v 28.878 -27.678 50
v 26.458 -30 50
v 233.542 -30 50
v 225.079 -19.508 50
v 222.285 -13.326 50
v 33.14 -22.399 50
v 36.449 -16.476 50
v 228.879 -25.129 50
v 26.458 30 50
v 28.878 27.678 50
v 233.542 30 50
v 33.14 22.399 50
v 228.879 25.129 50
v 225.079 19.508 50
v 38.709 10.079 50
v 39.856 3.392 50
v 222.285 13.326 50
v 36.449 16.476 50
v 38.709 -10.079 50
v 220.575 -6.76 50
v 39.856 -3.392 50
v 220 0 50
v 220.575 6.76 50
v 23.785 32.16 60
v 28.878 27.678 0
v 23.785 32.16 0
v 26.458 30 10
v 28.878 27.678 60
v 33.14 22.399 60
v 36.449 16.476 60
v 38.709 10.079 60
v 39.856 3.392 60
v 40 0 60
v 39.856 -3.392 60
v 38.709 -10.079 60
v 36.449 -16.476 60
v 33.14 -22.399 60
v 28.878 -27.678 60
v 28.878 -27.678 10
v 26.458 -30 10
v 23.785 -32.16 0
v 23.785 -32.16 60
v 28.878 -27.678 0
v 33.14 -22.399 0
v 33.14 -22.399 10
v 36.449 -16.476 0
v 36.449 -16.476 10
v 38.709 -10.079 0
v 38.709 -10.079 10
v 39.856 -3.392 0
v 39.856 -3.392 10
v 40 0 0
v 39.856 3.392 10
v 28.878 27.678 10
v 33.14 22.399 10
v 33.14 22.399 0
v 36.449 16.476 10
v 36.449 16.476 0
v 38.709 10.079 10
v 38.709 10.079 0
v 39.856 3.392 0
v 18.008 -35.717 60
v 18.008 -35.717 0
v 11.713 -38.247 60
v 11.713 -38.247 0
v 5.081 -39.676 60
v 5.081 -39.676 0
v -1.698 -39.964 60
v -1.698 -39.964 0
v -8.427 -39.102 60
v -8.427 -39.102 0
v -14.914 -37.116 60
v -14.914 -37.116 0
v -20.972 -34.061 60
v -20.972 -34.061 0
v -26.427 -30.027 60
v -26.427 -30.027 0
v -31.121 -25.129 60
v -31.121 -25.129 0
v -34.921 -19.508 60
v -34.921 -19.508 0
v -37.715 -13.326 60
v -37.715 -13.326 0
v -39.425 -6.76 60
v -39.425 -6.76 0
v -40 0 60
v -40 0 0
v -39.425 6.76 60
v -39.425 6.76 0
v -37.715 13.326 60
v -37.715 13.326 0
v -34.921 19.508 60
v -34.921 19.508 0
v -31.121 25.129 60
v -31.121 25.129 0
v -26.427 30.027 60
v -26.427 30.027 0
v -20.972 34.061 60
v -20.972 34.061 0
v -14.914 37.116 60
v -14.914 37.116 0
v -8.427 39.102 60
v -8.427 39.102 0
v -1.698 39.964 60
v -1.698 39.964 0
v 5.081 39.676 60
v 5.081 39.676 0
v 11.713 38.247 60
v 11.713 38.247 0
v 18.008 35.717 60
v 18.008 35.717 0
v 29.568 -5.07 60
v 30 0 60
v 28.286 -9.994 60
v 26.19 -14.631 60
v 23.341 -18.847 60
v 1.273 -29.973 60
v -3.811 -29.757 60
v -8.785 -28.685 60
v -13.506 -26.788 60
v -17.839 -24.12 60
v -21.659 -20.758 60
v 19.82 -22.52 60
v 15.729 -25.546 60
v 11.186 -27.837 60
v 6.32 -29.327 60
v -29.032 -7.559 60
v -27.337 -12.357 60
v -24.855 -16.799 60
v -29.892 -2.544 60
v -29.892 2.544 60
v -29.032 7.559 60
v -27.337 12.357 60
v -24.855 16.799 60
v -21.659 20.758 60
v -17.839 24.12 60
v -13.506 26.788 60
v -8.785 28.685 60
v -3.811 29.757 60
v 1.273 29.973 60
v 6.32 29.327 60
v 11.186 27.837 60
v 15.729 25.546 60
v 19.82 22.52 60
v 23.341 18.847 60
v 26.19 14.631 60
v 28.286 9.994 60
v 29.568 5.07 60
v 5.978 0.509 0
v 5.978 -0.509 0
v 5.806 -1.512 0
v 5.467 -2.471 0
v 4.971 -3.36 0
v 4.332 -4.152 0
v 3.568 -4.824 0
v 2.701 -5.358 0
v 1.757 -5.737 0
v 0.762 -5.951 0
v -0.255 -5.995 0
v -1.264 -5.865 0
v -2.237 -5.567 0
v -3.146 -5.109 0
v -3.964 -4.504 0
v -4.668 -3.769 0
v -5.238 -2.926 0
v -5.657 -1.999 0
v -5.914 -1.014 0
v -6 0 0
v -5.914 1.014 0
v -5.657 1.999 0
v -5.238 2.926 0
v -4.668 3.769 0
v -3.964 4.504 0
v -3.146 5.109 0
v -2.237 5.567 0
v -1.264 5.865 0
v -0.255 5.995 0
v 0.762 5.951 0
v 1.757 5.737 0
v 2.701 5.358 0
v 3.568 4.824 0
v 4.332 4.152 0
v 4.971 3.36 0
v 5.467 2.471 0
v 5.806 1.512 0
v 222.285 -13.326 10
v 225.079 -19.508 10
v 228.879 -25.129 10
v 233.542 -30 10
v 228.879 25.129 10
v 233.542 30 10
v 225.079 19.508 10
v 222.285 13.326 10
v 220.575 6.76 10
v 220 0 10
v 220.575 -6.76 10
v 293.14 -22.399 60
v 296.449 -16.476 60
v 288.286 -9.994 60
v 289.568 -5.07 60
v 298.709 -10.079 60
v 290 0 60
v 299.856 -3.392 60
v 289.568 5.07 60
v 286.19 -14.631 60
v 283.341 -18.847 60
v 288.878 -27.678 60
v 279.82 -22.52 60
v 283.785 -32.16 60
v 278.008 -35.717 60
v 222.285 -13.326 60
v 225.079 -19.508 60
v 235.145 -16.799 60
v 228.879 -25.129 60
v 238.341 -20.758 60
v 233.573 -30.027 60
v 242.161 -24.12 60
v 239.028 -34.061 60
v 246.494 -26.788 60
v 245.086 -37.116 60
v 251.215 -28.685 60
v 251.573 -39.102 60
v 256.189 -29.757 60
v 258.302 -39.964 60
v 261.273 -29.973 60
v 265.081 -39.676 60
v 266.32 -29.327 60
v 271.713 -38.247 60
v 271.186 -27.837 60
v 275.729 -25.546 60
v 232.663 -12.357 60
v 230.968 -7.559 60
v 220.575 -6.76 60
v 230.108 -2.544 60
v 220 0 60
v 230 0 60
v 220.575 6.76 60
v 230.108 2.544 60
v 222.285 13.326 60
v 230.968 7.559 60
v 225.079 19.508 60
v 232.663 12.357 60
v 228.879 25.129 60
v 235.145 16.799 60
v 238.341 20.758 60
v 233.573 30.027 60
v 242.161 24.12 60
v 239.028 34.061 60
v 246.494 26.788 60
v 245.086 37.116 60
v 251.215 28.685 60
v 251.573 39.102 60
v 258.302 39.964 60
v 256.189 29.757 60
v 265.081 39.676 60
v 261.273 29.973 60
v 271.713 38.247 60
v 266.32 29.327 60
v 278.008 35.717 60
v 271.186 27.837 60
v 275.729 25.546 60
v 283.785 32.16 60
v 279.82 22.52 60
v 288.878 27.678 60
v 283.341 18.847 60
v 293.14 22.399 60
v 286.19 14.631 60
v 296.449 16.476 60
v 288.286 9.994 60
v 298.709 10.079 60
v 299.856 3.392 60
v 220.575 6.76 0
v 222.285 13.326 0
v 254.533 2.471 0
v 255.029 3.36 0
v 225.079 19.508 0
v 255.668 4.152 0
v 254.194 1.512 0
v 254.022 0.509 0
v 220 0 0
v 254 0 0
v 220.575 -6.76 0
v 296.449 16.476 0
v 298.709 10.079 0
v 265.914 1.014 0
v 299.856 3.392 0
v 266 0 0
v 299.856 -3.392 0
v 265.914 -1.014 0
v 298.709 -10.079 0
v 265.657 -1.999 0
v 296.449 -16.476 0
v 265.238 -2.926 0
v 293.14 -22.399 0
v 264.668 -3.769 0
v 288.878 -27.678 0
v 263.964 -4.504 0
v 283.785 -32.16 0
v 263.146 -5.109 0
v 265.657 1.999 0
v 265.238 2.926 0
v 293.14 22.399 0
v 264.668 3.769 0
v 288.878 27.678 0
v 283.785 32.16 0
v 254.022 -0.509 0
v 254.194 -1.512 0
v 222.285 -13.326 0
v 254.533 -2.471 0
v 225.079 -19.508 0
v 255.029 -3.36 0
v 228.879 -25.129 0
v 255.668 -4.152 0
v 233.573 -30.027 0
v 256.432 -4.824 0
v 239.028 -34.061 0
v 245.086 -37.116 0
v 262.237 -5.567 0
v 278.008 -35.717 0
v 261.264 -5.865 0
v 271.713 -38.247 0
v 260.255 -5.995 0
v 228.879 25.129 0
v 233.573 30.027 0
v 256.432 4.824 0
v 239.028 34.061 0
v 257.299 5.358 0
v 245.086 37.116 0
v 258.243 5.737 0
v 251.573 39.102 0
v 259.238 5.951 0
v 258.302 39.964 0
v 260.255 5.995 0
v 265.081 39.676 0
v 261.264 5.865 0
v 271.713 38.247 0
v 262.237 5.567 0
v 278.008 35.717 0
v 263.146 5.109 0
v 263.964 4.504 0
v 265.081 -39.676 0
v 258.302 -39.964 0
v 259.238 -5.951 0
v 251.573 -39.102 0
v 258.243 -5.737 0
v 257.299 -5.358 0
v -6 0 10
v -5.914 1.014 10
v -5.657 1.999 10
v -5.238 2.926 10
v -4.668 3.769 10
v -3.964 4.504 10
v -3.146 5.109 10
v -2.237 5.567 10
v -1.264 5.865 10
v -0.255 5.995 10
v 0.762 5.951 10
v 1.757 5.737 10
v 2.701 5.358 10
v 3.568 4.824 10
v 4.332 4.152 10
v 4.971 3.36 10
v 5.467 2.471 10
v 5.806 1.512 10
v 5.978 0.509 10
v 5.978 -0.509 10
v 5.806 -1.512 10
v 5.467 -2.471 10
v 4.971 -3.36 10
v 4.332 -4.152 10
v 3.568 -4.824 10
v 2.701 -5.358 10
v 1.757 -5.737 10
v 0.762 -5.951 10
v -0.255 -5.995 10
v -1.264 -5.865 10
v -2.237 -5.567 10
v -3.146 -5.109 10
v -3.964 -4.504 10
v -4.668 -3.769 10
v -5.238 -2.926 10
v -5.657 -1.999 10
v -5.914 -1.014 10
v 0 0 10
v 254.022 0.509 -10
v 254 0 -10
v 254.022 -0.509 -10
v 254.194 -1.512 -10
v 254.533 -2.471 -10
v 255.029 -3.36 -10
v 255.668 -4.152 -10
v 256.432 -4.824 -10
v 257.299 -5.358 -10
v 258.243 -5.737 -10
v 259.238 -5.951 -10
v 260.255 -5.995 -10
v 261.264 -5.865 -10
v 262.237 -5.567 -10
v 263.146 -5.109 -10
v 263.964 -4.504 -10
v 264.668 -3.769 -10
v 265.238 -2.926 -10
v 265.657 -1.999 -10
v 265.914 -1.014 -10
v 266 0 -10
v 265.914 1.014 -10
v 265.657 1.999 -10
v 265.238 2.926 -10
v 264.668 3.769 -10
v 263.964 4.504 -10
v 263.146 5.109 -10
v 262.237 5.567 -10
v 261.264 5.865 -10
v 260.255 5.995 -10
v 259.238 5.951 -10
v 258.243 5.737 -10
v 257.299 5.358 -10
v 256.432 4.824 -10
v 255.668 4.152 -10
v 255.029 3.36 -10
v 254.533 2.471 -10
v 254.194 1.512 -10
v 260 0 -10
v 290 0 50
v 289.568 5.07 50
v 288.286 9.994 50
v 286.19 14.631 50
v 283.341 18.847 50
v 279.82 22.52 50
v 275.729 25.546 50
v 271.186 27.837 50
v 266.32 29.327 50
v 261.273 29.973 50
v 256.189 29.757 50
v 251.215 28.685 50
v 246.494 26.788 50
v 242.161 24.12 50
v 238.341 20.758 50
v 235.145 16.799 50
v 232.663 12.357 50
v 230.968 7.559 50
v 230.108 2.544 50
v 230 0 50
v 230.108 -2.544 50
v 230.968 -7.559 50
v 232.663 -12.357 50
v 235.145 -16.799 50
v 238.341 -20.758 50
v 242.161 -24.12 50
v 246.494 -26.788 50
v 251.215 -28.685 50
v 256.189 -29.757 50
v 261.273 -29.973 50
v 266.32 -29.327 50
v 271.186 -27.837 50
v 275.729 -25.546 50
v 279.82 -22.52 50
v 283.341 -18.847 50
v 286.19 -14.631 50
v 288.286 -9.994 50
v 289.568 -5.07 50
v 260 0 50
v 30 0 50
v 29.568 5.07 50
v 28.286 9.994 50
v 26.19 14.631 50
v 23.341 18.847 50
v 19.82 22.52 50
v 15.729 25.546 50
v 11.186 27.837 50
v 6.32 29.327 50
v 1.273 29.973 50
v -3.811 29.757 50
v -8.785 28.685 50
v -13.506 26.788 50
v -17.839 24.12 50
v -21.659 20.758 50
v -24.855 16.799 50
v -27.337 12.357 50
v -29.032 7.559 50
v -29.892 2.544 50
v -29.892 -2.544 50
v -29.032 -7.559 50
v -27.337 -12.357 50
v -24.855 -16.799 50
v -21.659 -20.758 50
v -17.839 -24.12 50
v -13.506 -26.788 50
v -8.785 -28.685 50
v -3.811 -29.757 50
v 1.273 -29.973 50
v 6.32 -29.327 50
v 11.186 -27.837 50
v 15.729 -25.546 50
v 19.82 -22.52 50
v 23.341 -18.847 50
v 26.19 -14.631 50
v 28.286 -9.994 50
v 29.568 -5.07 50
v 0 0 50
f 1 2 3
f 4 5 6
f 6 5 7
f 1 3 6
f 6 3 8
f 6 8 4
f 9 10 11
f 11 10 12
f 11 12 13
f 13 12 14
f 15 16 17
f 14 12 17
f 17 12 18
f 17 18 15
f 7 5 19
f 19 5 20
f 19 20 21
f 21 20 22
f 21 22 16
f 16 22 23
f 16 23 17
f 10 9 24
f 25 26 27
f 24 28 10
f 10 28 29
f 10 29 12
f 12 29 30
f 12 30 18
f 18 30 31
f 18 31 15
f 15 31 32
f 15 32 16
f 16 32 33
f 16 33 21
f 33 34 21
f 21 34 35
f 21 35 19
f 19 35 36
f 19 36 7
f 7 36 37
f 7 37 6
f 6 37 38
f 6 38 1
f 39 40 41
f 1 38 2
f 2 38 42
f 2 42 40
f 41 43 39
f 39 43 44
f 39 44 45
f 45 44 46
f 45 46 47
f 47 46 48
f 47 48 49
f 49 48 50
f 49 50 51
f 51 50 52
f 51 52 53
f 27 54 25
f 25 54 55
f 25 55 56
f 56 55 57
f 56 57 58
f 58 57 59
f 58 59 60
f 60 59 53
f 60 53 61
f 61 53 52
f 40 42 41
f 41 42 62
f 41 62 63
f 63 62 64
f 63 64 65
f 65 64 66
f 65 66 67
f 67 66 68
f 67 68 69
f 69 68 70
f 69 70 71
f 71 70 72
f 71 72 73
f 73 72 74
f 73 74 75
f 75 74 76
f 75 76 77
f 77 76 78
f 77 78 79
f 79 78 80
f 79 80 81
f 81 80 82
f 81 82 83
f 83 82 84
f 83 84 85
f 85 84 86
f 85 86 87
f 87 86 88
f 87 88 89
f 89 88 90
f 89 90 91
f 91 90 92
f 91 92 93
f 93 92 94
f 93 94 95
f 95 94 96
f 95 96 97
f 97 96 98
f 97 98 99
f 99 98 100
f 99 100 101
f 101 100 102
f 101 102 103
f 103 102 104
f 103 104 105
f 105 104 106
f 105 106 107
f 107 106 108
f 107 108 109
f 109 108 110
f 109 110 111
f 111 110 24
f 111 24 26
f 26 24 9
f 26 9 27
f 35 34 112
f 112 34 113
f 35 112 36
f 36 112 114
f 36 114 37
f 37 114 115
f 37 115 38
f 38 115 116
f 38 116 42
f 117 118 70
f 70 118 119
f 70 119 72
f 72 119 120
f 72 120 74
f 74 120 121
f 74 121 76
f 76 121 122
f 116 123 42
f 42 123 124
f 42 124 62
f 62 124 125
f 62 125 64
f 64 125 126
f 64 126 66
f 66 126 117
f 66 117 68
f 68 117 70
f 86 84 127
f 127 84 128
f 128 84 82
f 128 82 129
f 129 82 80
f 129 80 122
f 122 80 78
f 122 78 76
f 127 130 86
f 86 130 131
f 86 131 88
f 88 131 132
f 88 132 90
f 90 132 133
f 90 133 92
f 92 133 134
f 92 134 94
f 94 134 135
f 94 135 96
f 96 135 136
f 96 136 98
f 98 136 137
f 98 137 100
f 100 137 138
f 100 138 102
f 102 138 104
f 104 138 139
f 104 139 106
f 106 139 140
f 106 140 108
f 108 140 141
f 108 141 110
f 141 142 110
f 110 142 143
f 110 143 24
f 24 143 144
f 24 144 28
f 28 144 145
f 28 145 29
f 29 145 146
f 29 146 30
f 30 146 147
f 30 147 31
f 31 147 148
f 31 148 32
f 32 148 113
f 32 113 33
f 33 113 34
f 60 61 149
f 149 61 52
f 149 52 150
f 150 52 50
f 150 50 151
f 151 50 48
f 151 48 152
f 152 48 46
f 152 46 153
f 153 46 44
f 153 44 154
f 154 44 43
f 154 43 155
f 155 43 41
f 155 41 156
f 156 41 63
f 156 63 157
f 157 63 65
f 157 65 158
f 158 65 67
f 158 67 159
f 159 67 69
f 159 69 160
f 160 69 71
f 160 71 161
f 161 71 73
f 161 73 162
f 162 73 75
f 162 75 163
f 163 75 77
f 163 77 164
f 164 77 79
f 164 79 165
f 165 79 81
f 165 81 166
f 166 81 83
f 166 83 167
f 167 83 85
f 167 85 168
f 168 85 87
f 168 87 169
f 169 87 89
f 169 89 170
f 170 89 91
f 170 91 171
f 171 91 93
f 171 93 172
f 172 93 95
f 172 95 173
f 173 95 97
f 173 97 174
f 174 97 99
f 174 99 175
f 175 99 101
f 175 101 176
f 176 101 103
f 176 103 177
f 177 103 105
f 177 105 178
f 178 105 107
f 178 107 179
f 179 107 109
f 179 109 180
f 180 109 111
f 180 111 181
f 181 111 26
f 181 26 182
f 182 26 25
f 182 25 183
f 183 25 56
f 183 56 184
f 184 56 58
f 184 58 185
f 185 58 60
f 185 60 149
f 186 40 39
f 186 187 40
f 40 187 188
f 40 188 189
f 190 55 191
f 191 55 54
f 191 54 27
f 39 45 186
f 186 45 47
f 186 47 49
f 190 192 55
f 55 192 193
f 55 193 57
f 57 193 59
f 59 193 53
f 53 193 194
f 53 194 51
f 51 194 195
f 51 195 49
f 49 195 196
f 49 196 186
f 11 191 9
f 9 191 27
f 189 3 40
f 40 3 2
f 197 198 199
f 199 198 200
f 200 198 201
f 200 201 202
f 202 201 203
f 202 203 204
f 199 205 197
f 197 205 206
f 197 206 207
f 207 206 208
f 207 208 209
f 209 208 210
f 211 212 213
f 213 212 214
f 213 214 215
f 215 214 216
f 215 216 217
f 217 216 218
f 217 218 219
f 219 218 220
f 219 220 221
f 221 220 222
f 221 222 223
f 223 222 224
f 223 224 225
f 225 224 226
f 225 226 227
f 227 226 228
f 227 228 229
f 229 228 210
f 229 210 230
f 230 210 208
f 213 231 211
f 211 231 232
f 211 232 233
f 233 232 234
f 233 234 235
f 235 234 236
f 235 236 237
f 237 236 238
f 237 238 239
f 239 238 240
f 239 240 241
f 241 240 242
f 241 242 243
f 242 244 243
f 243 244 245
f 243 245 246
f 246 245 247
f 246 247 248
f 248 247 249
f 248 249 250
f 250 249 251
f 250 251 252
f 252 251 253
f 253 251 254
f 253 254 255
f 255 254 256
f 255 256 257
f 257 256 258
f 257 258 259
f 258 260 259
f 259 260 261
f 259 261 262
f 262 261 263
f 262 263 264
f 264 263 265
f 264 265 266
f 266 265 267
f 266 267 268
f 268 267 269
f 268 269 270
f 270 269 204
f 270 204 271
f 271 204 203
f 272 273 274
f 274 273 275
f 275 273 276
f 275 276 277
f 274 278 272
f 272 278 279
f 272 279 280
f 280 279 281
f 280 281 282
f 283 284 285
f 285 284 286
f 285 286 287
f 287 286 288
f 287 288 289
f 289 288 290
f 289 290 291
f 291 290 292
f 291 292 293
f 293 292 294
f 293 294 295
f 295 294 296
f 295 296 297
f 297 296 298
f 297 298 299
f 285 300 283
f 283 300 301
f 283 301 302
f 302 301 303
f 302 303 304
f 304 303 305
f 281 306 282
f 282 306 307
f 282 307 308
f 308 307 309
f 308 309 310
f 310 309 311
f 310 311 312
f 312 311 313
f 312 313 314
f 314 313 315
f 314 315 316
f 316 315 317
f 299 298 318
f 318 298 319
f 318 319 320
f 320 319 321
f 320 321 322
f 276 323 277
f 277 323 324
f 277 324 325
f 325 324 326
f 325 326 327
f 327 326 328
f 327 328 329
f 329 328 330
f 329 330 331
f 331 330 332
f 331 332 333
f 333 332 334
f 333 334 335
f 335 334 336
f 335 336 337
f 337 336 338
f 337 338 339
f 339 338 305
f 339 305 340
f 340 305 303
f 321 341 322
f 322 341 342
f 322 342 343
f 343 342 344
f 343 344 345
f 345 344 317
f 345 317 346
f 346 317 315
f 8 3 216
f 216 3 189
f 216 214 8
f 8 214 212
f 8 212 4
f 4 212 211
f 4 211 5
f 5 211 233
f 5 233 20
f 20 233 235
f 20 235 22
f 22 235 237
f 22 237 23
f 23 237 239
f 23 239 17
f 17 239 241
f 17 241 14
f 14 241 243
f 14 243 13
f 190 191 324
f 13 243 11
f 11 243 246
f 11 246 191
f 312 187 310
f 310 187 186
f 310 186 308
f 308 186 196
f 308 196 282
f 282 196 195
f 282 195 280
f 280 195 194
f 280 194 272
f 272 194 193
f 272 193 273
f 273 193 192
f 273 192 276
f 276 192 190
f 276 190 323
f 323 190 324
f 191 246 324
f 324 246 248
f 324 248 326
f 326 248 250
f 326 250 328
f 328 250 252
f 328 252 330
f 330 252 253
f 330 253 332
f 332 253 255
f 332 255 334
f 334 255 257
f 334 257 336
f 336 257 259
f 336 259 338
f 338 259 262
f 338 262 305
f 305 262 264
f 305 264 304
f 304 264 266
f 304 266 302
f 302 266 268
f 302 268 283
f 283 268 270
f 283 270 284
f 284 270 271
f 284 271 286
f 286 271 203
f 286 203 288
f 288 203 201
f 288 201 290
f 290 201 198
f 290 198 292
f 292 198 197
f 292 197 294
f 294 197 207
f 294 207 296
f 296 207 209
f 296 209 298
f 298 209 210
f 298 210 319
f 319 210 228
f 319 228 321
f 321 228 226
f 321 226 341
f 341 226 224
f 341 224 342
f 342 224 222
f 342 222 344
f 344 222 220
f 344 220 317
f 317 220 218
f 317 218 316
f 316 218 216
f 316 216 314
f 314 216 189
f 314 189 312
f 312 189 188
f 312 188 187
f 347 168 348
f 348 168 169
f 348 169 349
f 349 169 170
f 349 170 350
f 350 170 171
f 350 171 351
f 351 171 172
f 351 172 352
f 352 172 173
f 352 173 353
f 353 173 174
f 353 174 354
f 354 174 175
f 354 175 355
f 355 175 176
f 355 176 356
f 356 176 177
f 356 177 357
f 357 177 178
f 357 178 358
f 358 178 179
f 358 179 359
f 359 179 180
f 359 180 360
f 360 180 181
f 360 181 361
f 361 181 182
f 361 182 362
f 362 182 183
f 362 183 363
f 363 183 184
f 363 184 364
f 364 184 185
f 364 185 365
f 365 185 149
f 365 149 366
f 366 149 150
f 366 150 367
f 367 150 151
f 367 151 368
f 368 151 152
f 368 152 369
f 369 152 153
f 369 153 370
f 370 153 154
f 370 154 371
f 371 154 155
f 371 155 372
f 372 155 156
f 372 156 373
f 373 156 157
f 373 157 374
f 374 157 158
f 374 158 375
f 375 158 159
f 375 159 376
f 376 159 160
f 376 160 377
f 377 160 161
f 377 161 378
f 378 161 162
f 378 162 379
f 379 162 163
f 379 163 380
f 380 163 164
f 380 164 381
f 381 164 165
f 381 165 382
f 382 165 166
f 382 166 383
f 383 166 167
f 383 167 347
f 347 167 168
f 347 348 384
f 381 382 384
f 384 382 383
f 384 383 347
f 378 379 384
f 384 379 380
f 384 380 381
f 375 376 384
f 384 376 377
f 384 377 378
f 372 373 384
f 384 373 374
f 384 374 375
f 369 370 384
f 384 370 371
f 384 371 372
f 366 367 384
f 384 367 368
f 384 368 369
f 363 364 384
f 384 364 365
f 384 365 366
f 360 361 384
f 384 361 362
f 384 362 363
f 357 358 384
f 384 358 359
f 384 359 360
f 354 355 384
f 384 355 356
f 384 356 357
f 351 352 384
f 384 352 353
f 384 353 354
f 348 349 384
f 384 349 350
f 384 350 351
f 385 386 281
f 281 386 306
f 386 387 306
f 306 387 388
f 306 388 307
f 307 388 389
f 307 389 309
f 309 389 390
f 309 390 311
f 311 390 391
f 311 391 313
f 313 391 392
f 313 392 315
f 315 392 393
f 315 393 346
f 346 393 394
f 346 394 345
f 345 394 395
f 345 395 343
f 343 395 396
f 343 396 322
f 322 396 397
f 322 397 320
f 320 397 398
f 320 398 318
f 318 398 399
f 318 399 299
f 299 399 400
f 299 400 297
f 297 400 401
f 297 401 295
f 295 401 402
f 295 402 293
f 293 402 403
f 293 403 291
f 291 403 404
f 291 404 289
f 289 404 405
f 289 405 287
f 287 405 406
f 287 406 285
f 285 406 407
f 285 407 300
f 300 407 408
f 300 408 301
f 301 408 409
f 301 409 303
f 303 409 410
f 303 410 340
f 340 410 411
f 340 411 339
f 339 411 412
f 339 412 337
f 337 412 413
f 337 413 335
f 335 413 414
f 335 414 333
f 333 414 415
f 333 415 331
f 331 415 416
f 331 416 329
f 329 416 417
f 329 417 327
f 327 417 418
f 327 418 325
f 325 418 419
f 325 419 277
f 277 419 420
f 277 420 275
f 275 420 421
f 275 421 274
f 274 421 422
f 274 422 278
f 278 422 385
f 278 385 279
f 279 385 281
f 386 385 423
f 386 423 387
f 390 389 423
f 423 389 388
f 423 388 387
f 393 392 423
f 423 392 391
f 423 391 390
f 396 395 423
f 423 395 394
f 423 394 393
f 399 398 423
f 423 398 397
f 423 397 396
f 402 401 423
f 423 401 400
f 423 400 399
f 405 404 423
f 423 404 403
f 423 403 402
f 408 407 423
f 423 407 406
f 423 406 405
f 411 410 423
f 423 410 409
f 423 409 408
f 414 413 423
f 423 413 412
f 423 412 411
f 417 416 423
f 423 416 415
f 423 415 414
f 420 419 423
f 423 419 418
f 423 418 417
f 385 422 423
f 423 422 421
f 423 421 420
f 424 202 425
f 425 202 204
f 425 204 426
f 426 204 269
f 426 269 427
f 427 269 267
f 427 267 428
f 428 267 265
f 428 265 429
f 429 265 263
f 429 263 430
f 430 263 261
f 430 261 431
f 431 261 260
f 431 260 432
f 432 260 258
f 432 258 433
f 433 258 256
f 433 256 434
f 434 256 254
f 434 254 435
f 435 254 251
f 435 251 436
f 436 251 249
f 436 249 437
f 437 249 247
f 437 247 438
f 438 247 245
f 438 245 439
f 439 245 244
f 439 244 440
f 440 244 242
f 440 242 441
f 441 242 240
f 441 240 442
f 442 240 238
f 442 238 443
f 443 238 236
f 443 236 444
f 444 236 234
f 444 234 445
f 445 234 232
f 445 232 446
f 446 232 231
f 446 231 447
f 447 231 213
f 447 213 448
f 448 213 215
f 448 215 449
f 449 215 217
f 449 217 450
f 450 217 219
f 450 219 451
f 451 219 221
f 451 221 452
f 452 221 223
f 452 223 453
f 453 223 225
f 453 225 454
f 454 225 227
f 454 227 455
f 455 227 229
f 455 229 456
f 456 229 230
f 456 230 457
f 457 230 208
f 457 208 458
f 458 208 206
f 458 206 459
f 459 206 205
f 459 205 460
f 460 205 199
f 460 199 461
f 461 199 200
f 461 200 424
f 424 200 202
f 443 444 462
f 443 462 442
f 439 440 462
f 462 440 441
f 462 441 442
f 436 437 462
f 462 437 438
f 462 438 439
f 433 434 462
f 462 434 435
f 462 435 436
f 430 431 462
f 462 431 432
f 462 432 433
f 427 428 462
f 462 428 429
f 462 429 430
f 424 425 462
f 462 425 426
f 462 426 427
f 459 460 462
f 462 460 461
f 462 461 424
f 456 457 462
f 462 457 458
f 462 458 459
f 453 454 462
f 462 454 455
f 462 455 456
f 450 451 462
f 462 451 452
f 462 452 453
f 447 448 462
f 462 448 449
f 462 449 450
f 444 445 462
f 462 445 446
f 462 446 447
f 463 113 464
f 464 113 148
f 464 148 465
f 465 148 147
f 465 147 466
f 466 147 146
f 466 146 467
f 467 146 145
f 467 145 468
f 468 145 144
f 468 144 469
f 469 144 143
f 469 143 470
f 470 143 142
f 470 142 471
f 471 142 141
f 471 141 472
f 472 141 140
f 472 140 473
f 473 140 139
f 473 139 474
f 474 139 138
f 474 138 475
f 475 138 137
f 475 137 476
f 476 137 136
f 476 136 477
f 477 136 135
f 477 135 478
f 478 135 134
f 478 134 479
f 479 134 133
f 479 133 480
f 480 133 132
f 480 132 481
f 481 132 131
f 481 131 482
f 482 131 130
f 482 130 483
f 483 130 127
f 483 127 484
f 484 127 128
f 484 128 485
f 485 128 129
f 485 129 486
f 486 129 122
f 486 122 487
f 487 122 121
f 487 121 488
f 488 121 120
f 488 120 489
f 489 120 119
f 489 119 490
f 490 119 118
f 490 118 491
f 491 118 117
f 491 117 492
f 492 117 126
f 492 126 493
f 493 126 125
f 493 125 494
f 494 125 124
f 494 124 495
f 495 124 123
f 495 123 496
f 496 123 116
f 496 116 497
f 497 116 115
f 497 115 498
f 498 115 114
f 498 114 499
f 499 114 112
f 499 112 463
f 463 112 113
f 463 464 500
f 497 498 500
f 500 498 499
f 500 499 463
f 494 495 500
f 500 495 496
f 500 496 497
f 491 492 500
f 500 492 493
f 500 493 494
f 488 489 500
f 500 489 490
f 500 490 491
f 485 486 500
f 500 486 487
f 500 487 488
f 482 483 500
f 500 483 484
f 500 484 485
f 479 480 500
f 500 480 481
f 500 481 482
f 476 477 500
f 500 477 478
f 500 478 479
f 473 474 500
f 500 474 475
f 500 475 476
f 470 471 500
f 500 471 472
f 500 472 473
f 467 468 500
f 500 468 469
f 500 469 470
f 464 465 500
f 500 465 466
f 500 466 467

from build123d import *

# Parameters (mm, degrees)
SKETCH1_R             = 40
BOSS_EXTRUDE1_DEPTH   = 60
BOSS_EXTRUDE1_2_DEPTH = 60
BOSS_EXTRUDE3_START   = -3.447986
SKETCH5_W             = 40
SKETCH5_H             = 60
BOSS_EXTRUDE3_DEPTH   = 207.084974
SKETCH3_R             = 6
CUT_EXTRUDE3_DEPTH    = 10
SKETCH4_R             = 6
BOSS_EXTRUDE4_DEPTH   = 10
SKETCH6_R             = 30
CUT_EXTRUDE4_DEPTH    = 10


with BuildPart() as part:
    # Sketch1 → Boss-Extrude1 (new body)
    with BuildSketch(Plane.XY):
        Circle(SKETCH1_R)
    extrude(amount=BOSS_EXTRUDE1_DEPTH)



with BuildPart() as body_2:
    # Sketch1 → Boss-Extrude1 2 (new body)
    with BuildSketch(Plane.XY):
        with Locations((260, 0)):
            Circle(SKETCH1_R)
    extrude(amount=BOSS_EXTRUDE1_2_DEPTH)


with BuildPart() as part_1:
    add(part.part)

    add(body_2.part)  # Boss-Extrude3 merges body 2
    # Sketch5 → Boss-Extrude3 (add)
    with BuildSketch(Plane.ZY.offset(-230.094500915).offset(BOSS_EXTRUDE3_START)):
        with Locations((30, 0)):
            Rectangle(SKETCH5_W, SKETCH5_H)
    extrude(amount=BOSS_EXTRUDE3_DEPTH)

    # Sketch3 → Cut-Extrude3 (cut)
    with BuildSketch(Plane(origin=(0, 0, 0), x_dir=(-1, 0, 0), z_dir=(0, 0, -1))):
        Circle(SKETCH3_R)
    extrude(amount=-CUT_EXTRUDE3_DEPTH, mode=Mode.SUBTRACT)

    # Sketch4 → Boss-Extrude4 (add)
    with BuildSketch(Plane(origin=(0, 0, 0), x_dir=(-1, 0, 0), z_dir=(0, 0, -1))):
        with Locations((-260, 0)):
            Circle(SKETCH4_R)
    extrude(amount=BOSS_EXTRUDE4_DEPTH)

    # Sketch6 → Cut-Extrude4 (cut)
    with BuildSketch(Plane.XY.offset(60)):
        Circle(SKETCH6_R)
        with Locations((260, 0)):
            Circle(SKETCH6_R)
    extrude(amount=-CUT_EXTRUDE4_DEPTH, mode=Mode.SUBTRACT)


solid = part_1.part
